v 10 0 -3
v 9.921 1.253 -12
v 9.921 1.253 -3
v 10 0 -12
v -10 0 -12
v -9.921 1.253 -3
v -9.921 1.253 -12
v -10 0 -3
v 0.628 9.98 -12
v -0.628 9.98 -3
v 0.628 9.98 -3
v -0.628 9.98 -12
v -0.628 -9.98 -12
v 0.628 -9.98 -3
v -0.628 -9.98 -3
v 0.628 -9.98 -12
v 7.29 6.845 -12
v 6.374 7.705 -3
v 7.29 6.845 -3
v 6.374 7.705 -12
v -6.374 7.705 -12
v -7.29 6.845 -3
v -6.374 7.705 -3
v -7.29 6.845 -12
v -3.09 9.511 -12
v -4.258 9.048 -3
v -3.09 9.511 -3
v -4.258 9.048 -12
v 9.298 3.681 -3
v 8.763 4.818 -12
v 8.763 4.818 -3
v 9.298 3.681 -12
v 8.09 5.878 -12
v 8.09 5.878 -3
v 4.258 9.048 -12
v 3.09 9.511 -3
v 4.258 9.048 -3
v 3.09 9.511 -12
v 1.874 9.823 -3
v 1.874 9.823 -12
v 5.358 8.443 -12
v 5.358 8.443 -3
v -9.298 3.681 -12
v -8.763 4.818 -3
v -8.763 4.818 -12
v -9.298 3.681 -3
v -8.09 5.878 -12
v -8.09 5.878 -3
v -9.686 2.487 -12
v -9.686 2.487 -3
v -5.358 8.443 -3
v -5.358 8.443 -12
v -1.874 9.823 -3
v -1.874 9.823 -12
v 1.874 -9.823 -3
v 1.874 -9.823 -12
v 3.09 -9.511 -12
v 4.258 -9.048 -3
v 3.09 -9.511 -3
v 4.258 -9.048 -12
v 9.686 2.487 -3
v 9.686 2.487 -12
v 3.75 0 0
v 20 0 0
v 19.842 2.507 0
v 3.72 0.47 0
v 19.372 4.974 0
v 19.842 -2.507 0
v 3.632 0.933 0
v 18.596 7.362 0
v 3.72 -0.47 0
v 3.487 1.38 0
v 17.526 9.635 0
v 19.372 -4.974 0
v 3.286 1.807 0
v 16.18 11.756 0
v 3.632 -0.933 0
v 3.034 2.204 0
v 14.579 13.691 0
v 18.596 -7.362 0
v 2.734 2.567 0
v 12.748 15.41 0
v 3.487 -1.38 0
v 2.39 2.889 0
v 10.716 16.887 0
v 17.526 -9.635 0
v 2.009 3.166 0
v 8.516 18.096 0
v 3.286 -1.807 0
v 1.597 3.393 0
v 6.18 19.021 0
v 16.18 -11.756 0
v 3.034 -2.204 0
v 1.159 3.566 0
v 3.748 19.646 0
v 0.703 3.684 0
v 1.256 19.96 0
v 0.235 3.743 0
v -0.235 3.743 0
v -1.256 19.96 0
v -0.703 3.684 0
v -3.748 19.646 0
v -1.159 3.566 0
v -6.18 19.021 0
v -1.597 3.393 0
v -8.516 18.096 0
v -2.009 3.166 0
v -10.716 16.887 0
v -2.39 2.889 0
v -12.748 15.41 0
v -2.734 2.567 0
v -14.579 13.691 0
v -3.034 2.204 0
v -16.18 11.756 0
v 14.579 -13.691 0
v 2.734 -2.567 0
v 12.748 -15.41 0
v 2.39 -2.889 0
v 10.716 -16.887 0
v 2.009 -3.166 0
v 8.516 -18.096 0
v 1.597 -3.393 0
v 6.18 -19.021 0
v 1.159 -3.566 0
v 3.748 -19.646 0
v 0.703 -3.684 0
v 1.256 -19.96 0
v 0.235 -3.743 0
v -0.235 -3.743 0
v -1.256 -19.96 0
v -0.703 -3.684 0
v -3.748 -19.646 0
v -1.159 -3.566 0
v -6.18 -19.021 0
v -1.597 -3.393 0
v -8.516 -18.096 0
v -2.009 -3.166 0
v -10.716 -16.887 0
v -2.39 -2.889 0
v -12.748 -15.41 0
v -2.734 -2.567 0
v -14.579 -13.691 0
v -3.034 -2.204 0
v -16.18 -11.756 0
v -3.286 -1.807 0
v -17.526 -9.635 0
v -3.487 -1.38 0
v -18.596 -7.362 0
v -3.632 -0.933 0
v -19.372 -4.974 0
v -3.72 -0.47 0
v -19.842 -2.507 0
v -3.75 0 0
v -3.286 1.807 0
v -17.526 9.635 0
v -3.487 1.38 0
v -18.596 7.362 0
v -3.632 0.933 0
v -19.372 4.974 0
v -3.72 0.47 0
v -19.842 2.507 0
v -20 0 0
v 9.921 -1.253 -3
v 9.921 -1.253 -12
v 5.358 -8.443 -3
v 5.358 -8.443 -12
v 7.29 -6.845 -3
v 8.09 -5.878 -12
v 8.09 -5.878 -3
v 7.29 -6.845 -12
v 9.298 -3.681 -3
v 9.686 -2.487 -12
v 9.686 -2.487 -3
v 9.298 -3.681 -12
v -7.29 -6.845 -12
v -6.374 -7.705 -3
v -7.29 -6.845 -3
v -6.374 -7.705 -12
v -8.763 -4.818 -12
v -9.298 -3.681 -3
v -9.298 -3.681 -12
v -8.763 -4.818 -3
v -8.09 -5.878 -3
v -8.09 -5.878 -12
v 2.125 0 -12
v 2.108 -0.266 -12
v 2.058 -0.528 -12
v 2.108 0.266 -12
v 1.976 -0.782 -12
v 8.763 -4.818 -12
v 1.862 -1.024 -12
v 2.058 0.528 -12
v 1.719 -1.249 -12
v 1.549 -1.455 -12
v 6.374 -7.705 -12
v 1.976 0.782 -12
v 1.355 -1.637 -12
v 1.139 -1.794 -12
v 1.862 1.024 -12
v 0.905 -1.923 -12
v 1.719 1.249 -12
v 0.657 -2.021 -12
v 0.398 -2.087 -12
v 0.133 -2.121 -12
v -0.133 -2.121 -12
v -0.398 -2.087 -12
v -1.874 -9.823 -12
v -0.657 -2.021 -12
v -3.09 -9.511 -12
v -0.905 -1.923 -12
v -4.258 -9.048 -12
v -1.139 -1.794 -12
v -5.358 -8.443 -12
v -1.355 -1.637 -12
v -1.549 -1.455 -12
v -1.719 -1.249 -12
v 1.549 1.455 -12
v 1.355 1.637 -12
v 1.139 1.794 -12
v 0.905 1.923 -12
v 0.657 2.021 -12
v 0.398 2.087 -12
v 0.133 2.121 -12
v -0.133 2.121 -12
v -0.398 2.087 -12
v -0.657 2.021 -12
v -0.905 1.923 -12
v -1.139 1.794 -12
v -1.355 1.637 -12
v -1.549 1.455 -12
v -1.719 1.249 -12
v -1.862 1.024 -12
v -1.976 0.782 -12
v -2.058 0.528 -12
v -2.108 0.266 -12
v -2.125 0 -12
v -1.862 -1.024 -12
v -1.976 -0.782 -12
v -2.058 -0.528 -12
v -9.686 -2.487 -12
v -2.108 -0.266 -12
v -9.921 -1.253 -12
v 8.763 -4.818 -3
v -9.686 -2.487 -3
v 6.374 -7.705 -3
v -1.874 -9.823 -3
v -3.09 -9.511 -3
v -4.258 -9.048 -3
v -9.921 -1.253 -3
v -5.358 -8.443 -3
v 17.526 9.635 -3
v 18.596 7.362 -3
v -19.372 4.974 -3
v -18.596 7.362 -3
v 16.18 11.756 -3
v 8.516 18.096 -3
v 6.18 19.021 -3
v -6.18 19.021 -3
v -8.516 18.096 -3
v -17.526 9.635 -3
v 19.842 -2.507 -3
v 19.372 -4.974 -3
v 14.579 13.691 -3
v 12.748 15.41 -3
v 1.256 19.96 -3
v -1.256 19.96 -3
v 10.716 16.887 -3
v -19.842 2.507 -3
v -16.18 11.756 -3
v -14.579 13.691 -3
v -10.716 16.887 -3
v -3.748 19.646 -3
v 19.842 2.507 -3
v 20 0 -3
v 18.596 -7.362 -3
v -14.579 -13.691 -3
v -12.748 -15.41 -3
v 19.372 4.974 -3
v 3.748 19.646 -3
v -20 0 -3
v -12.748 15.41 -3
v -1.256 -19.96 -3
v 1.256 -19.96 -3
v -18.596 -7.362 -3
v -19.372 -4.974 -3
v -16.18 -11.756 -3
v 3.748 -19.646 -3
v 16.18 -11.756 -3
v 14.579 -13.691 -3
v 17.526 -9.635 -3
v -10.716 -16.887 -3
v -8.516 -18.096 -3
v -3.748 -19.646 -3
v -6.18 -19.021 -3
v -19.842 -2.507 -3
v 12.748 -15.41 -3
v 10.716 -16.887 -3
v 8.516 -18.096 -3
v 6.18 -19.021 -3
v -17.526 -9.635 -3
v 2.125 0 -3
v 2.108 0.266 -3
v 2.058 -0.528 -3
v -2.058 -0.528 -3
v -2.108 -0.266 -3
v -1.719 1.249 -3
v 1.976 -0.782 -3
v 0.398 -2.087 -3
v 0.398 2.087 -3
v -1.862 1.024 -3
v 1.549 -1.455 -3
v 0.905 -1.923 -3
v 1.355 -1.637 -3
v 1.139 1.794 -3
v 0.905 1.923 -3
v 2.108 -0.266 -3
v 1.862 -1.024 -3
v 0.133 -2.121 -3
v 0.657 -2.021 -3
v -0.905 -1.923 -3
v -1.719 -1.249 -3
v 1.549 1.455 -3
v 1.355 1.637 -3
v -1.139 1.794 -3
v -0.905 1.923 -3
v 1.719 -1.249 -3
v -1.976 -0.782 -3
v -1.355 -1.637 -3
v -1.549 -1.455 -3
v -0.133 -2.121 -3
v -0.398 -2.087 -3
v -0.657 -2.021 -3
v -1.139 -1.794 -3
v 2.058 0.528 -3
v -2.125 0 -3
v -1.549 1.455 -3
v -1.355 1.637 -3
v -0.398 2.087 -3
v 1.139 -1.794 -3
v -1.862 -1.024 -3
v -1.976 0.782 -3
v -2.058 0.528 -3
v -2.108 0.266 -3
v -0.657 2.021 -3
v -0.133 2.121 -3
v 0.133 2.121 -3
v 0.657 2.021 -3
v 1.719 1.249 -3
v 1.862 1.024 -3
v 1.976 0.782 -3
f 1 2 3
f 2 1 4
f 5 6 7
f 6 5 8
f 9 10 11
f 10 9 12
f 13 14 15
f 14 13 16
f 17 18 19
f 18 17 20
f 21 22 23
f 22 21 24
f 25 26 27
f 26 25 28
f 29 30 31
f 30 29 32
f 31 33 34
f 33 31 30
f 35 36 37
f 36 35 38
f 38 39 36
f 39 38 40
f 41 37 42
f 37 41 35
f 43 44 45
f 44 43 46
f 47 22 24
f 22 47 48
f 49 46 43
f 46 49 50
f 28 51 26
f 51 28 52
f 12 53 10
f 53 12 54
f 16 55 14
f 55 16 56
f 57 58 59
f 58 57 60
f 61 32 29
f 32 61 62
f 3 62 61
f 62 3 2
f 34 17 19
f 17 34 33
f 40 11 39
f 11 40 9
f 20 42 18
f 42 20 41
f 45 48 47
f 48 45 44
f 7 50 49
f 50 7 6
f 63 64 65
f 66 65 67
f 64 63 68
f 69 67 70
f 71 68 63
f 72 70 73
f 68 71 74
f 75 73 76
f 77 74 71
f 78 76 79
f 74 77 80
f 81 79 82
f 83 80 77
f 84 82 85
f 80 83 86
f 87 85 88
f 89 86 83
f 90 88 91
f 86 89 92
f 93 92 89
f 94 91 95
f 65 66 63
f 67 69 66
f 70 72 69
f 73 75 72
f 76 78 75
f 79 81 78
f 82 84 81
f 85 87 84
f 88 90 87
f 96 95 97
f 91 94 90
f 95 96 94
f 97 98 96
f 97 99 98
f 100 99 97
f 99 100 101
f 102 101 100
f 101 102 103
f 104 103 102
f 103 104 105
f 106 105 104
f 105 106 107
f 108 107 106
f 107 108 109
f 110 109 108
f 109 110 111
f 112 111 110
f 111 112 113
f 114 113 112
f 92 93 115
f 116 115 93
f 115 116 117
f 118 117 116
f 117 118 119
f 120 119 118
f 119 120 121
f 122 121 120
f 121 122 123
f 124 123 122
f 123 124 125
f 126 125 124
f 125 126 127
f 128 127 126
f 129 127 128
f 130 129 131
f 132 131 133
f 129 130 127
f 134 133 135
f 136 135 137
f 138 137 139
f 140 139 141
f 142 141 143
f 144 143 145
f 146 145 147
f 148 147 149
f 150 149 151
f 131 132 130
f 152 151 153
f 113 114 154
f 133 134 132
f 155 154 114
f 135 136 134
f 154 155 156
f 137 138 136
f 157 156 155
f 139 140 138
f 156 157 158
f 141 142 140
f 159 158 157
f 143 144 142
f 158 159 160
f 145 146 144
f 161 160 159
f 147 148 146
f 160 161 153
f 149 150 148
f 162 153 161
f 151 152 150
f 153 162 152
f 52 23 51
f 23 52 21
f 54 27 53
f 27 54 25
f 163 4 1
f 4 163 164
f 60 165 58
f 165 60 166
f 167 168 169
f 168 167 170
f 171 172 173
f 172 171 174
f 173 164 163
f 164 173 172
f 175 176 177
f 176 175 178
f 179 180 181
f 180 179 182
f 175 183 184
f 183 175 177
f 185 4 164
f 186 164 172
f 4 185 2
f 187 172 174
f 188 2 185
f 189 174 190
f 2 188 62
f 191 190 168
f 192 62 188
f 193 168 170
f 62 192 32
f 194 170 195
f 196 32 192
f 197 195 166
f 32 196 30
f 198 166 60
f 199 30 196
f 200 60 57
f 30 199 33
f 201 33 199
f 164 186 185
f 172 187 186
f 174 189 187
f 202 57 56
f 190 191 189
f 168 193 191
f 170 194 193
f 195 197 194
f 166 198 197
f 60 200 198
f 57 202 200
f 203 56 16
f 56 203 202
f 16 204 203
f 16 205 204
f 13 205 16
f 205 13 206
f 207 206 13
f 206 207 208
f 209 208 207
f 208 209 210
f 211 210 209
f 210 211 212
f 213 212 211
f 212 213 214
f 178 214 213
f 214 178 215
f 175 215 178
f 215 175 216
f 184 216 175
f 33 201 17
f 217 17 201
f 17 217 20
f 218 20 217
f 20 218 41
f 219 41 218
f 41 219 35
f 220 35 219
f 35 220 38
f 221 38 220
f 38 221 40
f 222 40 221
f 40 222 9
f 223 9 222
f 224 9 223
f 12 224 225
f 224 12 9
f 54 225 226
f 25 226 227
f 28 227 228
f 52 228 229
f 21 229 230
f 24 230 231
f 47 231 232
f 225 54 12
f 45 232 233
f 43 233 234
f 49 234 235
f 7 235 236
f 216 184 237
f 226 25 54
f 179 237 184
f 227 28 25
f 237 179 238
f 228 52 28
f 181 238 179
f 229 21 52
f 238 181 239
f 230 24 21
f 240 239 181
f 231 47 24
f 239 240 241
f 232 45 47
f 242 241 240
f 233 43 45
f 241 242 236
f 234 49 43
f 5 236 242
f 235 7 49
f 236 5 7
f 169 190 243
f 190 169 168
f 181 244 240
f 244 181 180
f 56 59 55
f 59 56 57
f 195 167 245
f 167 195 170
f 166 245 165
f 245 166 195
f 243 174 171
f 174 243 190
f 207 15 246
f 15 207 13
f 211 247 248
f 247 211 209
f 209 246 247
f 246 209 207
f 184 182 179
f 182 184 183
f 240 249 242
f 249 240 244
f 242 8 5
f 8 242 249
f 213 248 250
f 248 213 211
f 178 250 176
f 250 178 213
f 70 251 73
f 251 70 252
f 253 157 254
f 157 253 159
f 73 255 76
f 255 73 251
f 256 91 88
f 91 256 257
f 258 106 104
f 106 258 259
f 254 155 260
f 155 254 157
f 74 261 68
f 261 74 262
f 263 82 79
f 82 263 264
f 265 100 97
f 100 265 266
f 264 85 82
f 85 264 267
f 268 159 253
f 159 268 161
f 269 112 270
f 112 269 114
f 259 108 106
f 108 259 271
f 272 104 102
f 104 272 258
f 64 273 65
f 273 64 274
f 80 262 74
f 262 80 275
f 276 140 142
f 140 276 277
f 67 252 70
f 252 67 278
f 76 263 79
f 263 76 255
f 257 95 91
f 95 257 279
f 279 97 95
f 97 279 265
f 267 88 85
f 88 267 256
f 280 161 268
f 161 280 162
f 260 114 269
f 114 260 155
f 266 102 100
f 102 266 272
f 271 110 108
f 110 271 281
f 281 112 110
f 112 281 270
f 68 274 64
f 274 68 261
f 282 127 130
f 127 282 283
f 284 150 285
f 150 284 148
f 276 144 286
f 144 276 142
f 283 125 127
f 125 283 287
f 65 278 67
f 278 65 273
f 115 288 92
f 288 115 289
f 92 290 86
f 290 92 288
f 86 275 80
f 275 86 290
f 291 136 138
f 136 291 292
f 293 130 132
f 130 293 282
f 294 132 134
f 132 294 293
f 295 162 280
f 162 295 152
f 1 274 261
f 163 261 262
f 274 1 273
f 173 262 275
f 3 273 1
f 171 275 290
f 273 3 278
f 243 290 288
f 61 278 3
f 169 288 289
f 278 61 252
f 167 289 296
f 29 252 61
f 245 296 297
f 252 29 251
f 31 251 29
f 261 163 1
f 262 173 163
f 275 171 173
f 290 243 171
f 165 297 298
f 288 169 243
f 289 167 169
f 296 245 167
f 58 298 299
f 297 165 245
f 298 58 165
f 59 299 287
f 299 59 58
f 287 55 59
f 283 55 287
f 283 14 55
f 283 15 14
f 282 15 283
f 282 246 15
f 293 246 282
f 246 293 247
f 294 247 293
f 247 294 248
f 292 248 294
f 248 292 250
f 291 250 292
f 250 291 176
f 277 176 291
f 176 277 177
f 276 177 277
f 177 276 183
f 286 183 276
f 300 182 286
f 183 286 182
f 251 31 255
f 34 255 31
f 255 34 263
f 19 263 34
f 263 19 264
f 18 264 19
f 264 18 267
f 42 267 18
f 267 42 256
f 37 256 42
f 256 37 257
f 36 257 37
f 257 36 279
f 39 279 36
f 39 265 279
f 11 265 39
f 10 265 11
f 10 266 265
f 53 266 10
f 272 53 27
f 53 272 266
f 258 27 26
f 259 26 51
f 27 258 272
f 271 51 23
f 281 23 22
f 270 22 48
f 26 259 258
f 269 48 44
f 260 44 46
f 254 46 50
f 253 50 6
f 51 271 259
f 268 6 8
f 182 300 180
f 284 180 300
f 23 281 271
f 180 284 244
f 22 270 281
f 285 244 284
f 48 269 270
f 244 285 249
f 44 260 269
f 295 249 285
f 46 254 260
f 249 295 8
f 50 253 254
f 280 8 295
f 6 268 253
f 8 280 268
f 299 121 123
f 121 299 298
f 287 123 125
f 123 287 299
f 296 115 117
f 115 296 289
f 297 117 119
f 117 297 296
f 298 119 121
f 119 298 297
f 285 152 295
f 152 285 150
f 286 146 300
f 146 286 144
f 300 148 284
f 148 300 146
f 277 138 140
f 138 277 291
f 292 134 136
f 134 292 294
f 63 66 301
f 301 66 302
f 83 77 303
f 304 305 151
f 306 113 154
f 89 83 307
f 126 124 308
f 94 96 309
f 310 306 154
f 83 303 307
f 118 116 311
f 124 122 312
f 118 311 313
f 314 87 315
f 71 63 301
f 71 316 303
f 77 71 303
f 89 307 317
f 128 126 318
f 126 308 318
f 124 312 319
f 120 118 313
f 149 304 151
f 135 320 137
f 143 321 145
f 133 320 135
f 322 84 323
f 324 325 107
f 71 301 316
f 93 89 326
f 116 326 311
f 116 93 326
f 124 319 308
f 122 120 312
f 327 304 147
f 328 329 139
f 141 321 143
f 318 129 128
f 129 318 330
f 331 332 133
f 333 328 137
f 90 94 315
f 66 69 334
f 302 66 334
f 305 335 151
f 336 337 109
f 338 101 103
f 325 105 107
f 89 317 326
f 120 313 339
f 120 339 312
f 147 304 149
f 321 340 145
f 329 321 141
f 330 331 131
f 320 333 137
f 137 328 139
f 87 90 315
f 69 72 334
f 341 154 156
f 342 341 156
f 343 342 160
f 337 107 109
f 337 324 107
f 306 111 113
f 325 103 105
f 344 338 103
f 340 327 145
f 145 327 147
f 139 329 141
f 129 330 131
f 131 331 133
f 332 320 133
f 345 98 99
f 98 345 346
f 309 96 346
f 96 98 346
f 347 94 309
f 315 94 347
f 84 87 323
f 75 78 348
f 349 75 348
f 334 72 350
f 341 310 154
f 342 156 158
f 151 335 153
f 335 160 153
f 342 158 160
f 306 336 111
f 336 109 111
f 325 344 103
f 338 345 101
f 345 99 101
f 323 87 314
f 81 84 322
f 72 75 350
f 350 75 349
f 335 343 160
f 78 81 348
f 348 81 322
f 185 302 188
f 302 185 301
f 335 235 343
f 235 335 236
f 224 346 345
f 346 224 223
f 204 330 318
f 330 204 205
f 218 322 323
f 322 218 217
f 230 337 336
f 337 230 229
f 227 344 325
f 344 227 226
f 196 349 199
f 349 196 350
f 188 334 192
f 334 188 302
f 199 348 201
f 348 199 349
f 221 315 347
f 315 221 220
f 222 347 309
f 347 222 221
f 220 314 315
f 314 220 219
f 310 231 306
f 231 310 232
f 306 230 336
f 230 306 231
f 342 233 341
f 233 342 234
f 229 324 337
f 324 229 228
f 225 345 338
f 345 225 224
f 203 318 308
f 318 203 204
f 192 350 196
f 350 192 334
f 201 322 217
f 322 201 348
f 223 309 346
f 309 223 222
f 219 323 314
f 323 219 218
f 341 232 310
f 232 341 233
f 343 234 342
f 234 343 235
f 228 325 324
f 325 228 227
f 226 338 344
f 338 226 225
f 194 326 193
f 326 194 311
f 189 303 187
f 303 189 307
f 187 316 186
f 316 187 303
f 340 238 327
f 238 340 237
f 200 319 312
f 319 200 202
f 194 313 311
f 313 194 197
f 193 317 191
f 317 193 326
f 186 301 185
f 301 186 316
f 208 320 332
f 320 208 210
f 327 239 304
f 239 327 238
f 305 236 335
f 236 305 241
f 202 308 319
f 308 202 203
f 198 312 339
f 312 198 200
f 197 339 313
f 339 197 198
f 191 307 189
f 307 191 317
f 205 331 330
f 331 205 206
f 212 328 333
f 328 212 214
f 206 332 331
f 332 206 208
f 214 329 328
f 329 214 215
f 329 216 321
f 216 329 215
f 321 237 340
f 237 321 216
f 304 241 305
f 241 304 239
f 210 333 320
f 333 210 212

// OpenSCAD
$fn = 50;


difference() {
	union() {
		translate(v = [0, 0, -12.0000000000]) {
			cylinder(h = 12, r = 10.0000000000);
		}
		translate(v = [0, 0, -3.0000000000]) {
			cylinder(h = 3, r = 20.0000000000);
		}
	}
	union() {
		translate(v = [0, 0, 0]) {
			rotate(a = [0, 0, 0]) {
				difference() {
					union() {
						#translate(v = [0, 0, -12.0000000000]) {
							cylinder(h = 12, r = 2.0000000000);
						}
						#translate(v = [0, 0, -3]) {
							cylinder(h = 3, r1 = 2.1250000000, r2 = 3.7500000000);
						}
						#translate(v = [0, 0, -12.0000000000]) {
							cylinder(h = 12, r = 2.1250000000);
						}
						#translate(v = [0, 0, -12.0000000000]) {
							cylinder(h = 12, r = 2.0000000000);
						}
					}
					union();
				}
			}
		}
	}
}
